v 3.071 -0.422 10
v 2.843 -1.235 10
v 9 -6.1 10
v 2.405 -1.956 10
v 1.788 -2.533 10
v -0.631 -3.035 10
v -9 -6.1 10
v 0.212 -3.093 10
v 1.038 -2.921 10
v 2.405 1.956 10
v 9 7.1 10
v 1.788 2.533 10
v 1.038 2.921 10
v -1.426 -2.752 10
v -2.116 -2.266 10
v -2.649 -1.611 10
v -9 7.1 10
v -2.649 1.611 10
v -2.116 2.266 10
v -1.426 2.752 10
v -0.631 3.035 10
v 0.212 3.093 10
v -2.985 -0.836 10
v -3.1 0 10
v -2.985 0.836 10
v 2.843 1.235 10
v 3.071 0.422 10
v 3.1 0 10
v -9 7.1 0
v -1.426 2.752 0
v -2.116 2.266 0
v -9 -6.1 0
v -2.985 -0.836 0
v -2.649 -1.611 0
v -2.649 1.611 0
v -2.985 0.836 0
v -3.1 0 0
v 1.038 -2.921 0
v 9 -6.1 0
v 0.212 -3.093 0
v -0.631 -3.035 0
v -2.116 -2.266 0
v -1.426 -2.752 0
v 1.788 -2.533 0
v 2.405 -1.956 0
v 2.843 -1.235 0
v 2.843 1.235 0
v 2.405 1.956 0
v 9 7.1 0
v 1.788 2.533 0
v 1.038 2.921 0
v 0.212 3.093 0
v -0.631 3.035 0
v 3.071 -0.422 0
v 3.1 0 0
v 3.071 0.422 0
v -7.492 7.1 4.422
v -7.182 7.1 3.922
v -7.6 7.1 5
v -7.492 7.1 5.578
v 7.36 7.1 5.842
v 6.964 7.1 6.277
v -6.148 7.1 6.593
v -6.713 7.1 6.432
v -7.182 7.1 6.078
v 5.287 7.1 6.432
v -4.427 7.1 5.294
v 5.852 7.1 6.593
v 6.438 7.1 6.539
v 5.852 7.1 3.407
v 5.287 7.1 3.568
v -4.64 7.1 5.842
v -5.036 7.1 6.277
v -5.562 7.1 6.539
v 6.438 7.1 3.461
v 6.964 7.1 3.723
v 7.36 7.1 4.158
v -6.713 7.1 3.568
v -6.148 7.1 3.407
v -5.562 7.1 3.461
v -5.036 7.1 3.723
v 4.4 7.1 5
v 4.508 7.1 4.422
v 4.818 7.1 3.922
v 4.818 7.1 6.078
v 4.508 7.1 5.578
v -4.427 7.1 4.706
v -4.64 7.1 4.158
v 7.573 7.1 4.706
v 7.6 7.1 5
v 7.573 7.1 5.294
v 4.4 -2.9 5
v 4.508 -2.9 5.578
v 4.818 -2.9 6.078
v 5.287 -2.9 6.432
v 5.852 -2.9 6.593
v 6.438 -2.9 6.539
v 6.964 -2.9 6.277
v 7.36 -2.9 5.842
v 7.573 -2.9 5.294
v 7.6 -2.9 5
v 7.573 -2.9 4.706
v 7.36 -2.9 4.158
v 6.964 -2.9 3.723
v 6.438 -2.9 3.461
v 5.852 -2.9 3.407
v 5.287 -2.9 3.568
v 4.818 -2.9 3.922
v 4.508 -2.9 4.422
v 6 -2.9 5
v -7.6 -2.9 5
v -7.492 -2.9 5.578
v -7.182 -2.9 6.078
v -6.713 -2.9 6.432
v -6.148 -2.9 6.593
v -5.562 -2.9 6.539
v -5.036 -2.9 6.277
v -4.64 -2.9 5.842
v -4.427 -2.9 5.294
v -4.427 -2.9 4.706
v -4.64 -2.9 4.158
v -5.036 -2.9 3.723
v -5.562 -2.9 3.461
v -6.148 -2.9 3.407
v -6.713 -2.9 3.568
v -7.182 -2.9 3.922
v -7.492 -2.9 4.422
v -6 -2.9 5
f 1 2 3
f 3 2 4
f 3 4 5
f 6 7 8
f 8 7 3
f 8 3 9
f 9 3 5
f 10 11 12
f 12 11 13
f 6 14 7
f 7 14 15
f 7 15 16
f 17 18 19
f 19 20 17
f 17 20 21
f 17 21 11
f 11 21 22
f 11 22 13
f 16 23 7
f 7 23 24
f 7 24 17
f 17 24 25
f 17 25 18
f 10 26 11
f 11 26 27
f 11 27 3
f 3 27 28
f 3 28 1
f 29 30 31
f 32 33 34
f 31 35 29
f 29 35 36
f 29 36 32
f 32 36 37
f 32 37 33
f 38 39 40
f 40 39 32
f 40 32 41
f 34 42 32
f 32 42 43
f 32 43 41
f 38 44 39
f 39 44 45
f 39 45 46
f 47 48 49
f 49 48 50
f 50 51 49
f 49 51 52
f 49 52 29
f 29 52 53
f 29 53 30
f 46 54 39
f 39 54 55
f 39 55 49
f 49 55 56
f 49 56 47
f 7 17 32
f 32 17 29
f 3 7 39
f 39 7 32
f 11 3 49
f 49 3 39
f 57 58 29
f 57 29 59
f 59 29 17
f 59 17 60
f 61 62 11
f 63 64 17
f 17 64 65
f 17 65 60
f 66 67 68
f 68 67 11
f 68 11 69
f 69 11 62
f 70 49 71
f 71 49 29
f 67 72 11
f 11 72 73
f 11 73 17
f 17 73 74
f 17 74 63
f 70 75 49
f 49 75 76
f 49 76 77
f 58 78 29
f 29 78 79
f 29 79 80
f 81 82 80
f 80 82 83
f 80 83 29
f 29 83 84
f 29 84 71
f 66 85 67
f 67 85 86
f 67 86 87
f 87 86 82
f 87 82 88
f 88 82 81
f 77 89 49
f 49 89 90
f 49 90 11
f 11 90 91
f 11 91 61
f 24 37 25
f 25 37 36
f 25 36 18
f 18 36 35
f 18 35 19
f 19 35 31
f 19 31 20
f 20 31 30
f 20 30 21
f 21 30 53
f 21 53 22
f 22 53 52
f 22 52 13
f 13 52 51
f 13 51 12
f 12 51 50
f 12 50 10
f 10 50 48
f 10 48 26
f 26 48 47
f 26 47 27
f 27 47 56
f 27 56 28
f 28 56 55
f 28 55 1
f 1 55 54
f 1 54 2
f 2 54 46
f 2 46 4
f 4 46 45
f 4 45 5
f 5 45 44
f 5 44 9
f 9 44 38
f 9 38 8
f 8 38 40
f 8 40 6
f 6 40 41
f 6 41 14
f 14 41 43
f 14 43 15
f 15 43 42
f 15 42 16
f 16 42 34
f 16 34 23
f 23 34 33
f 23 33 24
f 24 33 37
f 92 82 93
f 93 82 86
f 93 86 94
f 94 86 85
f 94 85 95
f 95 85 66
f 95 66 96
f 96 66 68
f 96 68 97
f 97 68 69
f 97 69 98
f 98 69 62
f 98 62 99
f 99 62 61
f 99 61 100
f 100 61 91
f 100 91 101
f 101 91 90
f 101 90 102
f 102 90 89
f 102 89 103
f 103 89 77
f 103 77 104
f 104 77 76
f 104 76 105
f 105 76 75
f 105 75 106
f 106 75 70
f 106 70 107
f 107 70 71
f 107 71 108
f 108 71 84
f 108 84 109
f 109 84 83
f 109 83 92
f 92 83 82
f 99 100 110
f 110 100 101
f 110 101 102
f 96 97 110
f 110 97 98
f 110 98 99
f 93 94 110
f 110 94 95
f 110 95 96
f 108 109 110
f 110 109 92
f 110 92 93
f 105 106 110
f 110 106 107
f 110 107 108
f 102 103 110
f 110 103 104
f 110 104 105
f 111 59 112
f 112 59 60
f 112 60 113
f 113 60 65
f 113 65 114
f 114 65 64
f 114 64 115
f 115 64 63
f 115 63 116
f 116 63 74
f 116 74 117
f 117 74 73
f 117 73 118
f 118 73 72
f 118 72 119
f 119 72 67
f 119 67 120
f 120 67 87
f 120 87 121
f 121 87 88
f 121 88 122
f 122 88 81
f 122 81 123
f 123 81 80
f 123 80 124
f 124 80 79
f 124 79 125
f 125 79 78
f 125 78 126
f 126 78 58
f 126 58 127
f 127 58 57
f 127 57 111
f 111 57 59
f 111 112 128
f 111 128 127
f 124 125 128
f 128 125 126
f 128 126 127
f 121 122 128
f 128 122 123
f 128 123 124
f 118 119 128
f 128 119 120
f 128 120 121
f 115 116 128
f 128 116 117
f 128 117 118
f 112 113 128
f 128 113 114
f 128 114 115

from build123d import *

# Parameters (mm, degrees)
SKETCH_1_W          = 18
SKETCH_1_H          = 13.2
SKETCH_1_R          = 3.1
EXTRUDE_1_DEPTH     = 10
SKETCH_2_R          = 1.6
CUT_EXTRUDE_1_DEPTH = 10


with BuildPart() as part:
    # ｽｹｯﾁ1 → ﾎﾞｽ - 押し出し1 (new body)
    with BuildSketch(Plane.XY):
        with Locations((0, 0.5)):
            Rectangle(SKETCH_1_W, SKETCH_1_H)
        Circle(SKETCH_1_R, mode=Mode.SUBTRACT)
    extrude(amount=EXTRUDE_1_DEPTH)

    # ｽｹｯﾁ2 → ｶｯﾄ - 押し出し1 (cut)
    with BuildSketch(Plane(origin=(0, 7.1, 0), x_dir=(1, 0, 0), z_dir=(0, 1, 0))):
        with Locations(Location((-6, -5, 0), (0, 0, 180))):
            Circle(SKETCH_2_R)
        with Locations((6, -5)):
            Circle(SKETCH_2_R)
    extrude(amount=-CUT_EXTRUDE_1_DEPTH, mode=Mode.SUBTRACT)


solid = part.part
